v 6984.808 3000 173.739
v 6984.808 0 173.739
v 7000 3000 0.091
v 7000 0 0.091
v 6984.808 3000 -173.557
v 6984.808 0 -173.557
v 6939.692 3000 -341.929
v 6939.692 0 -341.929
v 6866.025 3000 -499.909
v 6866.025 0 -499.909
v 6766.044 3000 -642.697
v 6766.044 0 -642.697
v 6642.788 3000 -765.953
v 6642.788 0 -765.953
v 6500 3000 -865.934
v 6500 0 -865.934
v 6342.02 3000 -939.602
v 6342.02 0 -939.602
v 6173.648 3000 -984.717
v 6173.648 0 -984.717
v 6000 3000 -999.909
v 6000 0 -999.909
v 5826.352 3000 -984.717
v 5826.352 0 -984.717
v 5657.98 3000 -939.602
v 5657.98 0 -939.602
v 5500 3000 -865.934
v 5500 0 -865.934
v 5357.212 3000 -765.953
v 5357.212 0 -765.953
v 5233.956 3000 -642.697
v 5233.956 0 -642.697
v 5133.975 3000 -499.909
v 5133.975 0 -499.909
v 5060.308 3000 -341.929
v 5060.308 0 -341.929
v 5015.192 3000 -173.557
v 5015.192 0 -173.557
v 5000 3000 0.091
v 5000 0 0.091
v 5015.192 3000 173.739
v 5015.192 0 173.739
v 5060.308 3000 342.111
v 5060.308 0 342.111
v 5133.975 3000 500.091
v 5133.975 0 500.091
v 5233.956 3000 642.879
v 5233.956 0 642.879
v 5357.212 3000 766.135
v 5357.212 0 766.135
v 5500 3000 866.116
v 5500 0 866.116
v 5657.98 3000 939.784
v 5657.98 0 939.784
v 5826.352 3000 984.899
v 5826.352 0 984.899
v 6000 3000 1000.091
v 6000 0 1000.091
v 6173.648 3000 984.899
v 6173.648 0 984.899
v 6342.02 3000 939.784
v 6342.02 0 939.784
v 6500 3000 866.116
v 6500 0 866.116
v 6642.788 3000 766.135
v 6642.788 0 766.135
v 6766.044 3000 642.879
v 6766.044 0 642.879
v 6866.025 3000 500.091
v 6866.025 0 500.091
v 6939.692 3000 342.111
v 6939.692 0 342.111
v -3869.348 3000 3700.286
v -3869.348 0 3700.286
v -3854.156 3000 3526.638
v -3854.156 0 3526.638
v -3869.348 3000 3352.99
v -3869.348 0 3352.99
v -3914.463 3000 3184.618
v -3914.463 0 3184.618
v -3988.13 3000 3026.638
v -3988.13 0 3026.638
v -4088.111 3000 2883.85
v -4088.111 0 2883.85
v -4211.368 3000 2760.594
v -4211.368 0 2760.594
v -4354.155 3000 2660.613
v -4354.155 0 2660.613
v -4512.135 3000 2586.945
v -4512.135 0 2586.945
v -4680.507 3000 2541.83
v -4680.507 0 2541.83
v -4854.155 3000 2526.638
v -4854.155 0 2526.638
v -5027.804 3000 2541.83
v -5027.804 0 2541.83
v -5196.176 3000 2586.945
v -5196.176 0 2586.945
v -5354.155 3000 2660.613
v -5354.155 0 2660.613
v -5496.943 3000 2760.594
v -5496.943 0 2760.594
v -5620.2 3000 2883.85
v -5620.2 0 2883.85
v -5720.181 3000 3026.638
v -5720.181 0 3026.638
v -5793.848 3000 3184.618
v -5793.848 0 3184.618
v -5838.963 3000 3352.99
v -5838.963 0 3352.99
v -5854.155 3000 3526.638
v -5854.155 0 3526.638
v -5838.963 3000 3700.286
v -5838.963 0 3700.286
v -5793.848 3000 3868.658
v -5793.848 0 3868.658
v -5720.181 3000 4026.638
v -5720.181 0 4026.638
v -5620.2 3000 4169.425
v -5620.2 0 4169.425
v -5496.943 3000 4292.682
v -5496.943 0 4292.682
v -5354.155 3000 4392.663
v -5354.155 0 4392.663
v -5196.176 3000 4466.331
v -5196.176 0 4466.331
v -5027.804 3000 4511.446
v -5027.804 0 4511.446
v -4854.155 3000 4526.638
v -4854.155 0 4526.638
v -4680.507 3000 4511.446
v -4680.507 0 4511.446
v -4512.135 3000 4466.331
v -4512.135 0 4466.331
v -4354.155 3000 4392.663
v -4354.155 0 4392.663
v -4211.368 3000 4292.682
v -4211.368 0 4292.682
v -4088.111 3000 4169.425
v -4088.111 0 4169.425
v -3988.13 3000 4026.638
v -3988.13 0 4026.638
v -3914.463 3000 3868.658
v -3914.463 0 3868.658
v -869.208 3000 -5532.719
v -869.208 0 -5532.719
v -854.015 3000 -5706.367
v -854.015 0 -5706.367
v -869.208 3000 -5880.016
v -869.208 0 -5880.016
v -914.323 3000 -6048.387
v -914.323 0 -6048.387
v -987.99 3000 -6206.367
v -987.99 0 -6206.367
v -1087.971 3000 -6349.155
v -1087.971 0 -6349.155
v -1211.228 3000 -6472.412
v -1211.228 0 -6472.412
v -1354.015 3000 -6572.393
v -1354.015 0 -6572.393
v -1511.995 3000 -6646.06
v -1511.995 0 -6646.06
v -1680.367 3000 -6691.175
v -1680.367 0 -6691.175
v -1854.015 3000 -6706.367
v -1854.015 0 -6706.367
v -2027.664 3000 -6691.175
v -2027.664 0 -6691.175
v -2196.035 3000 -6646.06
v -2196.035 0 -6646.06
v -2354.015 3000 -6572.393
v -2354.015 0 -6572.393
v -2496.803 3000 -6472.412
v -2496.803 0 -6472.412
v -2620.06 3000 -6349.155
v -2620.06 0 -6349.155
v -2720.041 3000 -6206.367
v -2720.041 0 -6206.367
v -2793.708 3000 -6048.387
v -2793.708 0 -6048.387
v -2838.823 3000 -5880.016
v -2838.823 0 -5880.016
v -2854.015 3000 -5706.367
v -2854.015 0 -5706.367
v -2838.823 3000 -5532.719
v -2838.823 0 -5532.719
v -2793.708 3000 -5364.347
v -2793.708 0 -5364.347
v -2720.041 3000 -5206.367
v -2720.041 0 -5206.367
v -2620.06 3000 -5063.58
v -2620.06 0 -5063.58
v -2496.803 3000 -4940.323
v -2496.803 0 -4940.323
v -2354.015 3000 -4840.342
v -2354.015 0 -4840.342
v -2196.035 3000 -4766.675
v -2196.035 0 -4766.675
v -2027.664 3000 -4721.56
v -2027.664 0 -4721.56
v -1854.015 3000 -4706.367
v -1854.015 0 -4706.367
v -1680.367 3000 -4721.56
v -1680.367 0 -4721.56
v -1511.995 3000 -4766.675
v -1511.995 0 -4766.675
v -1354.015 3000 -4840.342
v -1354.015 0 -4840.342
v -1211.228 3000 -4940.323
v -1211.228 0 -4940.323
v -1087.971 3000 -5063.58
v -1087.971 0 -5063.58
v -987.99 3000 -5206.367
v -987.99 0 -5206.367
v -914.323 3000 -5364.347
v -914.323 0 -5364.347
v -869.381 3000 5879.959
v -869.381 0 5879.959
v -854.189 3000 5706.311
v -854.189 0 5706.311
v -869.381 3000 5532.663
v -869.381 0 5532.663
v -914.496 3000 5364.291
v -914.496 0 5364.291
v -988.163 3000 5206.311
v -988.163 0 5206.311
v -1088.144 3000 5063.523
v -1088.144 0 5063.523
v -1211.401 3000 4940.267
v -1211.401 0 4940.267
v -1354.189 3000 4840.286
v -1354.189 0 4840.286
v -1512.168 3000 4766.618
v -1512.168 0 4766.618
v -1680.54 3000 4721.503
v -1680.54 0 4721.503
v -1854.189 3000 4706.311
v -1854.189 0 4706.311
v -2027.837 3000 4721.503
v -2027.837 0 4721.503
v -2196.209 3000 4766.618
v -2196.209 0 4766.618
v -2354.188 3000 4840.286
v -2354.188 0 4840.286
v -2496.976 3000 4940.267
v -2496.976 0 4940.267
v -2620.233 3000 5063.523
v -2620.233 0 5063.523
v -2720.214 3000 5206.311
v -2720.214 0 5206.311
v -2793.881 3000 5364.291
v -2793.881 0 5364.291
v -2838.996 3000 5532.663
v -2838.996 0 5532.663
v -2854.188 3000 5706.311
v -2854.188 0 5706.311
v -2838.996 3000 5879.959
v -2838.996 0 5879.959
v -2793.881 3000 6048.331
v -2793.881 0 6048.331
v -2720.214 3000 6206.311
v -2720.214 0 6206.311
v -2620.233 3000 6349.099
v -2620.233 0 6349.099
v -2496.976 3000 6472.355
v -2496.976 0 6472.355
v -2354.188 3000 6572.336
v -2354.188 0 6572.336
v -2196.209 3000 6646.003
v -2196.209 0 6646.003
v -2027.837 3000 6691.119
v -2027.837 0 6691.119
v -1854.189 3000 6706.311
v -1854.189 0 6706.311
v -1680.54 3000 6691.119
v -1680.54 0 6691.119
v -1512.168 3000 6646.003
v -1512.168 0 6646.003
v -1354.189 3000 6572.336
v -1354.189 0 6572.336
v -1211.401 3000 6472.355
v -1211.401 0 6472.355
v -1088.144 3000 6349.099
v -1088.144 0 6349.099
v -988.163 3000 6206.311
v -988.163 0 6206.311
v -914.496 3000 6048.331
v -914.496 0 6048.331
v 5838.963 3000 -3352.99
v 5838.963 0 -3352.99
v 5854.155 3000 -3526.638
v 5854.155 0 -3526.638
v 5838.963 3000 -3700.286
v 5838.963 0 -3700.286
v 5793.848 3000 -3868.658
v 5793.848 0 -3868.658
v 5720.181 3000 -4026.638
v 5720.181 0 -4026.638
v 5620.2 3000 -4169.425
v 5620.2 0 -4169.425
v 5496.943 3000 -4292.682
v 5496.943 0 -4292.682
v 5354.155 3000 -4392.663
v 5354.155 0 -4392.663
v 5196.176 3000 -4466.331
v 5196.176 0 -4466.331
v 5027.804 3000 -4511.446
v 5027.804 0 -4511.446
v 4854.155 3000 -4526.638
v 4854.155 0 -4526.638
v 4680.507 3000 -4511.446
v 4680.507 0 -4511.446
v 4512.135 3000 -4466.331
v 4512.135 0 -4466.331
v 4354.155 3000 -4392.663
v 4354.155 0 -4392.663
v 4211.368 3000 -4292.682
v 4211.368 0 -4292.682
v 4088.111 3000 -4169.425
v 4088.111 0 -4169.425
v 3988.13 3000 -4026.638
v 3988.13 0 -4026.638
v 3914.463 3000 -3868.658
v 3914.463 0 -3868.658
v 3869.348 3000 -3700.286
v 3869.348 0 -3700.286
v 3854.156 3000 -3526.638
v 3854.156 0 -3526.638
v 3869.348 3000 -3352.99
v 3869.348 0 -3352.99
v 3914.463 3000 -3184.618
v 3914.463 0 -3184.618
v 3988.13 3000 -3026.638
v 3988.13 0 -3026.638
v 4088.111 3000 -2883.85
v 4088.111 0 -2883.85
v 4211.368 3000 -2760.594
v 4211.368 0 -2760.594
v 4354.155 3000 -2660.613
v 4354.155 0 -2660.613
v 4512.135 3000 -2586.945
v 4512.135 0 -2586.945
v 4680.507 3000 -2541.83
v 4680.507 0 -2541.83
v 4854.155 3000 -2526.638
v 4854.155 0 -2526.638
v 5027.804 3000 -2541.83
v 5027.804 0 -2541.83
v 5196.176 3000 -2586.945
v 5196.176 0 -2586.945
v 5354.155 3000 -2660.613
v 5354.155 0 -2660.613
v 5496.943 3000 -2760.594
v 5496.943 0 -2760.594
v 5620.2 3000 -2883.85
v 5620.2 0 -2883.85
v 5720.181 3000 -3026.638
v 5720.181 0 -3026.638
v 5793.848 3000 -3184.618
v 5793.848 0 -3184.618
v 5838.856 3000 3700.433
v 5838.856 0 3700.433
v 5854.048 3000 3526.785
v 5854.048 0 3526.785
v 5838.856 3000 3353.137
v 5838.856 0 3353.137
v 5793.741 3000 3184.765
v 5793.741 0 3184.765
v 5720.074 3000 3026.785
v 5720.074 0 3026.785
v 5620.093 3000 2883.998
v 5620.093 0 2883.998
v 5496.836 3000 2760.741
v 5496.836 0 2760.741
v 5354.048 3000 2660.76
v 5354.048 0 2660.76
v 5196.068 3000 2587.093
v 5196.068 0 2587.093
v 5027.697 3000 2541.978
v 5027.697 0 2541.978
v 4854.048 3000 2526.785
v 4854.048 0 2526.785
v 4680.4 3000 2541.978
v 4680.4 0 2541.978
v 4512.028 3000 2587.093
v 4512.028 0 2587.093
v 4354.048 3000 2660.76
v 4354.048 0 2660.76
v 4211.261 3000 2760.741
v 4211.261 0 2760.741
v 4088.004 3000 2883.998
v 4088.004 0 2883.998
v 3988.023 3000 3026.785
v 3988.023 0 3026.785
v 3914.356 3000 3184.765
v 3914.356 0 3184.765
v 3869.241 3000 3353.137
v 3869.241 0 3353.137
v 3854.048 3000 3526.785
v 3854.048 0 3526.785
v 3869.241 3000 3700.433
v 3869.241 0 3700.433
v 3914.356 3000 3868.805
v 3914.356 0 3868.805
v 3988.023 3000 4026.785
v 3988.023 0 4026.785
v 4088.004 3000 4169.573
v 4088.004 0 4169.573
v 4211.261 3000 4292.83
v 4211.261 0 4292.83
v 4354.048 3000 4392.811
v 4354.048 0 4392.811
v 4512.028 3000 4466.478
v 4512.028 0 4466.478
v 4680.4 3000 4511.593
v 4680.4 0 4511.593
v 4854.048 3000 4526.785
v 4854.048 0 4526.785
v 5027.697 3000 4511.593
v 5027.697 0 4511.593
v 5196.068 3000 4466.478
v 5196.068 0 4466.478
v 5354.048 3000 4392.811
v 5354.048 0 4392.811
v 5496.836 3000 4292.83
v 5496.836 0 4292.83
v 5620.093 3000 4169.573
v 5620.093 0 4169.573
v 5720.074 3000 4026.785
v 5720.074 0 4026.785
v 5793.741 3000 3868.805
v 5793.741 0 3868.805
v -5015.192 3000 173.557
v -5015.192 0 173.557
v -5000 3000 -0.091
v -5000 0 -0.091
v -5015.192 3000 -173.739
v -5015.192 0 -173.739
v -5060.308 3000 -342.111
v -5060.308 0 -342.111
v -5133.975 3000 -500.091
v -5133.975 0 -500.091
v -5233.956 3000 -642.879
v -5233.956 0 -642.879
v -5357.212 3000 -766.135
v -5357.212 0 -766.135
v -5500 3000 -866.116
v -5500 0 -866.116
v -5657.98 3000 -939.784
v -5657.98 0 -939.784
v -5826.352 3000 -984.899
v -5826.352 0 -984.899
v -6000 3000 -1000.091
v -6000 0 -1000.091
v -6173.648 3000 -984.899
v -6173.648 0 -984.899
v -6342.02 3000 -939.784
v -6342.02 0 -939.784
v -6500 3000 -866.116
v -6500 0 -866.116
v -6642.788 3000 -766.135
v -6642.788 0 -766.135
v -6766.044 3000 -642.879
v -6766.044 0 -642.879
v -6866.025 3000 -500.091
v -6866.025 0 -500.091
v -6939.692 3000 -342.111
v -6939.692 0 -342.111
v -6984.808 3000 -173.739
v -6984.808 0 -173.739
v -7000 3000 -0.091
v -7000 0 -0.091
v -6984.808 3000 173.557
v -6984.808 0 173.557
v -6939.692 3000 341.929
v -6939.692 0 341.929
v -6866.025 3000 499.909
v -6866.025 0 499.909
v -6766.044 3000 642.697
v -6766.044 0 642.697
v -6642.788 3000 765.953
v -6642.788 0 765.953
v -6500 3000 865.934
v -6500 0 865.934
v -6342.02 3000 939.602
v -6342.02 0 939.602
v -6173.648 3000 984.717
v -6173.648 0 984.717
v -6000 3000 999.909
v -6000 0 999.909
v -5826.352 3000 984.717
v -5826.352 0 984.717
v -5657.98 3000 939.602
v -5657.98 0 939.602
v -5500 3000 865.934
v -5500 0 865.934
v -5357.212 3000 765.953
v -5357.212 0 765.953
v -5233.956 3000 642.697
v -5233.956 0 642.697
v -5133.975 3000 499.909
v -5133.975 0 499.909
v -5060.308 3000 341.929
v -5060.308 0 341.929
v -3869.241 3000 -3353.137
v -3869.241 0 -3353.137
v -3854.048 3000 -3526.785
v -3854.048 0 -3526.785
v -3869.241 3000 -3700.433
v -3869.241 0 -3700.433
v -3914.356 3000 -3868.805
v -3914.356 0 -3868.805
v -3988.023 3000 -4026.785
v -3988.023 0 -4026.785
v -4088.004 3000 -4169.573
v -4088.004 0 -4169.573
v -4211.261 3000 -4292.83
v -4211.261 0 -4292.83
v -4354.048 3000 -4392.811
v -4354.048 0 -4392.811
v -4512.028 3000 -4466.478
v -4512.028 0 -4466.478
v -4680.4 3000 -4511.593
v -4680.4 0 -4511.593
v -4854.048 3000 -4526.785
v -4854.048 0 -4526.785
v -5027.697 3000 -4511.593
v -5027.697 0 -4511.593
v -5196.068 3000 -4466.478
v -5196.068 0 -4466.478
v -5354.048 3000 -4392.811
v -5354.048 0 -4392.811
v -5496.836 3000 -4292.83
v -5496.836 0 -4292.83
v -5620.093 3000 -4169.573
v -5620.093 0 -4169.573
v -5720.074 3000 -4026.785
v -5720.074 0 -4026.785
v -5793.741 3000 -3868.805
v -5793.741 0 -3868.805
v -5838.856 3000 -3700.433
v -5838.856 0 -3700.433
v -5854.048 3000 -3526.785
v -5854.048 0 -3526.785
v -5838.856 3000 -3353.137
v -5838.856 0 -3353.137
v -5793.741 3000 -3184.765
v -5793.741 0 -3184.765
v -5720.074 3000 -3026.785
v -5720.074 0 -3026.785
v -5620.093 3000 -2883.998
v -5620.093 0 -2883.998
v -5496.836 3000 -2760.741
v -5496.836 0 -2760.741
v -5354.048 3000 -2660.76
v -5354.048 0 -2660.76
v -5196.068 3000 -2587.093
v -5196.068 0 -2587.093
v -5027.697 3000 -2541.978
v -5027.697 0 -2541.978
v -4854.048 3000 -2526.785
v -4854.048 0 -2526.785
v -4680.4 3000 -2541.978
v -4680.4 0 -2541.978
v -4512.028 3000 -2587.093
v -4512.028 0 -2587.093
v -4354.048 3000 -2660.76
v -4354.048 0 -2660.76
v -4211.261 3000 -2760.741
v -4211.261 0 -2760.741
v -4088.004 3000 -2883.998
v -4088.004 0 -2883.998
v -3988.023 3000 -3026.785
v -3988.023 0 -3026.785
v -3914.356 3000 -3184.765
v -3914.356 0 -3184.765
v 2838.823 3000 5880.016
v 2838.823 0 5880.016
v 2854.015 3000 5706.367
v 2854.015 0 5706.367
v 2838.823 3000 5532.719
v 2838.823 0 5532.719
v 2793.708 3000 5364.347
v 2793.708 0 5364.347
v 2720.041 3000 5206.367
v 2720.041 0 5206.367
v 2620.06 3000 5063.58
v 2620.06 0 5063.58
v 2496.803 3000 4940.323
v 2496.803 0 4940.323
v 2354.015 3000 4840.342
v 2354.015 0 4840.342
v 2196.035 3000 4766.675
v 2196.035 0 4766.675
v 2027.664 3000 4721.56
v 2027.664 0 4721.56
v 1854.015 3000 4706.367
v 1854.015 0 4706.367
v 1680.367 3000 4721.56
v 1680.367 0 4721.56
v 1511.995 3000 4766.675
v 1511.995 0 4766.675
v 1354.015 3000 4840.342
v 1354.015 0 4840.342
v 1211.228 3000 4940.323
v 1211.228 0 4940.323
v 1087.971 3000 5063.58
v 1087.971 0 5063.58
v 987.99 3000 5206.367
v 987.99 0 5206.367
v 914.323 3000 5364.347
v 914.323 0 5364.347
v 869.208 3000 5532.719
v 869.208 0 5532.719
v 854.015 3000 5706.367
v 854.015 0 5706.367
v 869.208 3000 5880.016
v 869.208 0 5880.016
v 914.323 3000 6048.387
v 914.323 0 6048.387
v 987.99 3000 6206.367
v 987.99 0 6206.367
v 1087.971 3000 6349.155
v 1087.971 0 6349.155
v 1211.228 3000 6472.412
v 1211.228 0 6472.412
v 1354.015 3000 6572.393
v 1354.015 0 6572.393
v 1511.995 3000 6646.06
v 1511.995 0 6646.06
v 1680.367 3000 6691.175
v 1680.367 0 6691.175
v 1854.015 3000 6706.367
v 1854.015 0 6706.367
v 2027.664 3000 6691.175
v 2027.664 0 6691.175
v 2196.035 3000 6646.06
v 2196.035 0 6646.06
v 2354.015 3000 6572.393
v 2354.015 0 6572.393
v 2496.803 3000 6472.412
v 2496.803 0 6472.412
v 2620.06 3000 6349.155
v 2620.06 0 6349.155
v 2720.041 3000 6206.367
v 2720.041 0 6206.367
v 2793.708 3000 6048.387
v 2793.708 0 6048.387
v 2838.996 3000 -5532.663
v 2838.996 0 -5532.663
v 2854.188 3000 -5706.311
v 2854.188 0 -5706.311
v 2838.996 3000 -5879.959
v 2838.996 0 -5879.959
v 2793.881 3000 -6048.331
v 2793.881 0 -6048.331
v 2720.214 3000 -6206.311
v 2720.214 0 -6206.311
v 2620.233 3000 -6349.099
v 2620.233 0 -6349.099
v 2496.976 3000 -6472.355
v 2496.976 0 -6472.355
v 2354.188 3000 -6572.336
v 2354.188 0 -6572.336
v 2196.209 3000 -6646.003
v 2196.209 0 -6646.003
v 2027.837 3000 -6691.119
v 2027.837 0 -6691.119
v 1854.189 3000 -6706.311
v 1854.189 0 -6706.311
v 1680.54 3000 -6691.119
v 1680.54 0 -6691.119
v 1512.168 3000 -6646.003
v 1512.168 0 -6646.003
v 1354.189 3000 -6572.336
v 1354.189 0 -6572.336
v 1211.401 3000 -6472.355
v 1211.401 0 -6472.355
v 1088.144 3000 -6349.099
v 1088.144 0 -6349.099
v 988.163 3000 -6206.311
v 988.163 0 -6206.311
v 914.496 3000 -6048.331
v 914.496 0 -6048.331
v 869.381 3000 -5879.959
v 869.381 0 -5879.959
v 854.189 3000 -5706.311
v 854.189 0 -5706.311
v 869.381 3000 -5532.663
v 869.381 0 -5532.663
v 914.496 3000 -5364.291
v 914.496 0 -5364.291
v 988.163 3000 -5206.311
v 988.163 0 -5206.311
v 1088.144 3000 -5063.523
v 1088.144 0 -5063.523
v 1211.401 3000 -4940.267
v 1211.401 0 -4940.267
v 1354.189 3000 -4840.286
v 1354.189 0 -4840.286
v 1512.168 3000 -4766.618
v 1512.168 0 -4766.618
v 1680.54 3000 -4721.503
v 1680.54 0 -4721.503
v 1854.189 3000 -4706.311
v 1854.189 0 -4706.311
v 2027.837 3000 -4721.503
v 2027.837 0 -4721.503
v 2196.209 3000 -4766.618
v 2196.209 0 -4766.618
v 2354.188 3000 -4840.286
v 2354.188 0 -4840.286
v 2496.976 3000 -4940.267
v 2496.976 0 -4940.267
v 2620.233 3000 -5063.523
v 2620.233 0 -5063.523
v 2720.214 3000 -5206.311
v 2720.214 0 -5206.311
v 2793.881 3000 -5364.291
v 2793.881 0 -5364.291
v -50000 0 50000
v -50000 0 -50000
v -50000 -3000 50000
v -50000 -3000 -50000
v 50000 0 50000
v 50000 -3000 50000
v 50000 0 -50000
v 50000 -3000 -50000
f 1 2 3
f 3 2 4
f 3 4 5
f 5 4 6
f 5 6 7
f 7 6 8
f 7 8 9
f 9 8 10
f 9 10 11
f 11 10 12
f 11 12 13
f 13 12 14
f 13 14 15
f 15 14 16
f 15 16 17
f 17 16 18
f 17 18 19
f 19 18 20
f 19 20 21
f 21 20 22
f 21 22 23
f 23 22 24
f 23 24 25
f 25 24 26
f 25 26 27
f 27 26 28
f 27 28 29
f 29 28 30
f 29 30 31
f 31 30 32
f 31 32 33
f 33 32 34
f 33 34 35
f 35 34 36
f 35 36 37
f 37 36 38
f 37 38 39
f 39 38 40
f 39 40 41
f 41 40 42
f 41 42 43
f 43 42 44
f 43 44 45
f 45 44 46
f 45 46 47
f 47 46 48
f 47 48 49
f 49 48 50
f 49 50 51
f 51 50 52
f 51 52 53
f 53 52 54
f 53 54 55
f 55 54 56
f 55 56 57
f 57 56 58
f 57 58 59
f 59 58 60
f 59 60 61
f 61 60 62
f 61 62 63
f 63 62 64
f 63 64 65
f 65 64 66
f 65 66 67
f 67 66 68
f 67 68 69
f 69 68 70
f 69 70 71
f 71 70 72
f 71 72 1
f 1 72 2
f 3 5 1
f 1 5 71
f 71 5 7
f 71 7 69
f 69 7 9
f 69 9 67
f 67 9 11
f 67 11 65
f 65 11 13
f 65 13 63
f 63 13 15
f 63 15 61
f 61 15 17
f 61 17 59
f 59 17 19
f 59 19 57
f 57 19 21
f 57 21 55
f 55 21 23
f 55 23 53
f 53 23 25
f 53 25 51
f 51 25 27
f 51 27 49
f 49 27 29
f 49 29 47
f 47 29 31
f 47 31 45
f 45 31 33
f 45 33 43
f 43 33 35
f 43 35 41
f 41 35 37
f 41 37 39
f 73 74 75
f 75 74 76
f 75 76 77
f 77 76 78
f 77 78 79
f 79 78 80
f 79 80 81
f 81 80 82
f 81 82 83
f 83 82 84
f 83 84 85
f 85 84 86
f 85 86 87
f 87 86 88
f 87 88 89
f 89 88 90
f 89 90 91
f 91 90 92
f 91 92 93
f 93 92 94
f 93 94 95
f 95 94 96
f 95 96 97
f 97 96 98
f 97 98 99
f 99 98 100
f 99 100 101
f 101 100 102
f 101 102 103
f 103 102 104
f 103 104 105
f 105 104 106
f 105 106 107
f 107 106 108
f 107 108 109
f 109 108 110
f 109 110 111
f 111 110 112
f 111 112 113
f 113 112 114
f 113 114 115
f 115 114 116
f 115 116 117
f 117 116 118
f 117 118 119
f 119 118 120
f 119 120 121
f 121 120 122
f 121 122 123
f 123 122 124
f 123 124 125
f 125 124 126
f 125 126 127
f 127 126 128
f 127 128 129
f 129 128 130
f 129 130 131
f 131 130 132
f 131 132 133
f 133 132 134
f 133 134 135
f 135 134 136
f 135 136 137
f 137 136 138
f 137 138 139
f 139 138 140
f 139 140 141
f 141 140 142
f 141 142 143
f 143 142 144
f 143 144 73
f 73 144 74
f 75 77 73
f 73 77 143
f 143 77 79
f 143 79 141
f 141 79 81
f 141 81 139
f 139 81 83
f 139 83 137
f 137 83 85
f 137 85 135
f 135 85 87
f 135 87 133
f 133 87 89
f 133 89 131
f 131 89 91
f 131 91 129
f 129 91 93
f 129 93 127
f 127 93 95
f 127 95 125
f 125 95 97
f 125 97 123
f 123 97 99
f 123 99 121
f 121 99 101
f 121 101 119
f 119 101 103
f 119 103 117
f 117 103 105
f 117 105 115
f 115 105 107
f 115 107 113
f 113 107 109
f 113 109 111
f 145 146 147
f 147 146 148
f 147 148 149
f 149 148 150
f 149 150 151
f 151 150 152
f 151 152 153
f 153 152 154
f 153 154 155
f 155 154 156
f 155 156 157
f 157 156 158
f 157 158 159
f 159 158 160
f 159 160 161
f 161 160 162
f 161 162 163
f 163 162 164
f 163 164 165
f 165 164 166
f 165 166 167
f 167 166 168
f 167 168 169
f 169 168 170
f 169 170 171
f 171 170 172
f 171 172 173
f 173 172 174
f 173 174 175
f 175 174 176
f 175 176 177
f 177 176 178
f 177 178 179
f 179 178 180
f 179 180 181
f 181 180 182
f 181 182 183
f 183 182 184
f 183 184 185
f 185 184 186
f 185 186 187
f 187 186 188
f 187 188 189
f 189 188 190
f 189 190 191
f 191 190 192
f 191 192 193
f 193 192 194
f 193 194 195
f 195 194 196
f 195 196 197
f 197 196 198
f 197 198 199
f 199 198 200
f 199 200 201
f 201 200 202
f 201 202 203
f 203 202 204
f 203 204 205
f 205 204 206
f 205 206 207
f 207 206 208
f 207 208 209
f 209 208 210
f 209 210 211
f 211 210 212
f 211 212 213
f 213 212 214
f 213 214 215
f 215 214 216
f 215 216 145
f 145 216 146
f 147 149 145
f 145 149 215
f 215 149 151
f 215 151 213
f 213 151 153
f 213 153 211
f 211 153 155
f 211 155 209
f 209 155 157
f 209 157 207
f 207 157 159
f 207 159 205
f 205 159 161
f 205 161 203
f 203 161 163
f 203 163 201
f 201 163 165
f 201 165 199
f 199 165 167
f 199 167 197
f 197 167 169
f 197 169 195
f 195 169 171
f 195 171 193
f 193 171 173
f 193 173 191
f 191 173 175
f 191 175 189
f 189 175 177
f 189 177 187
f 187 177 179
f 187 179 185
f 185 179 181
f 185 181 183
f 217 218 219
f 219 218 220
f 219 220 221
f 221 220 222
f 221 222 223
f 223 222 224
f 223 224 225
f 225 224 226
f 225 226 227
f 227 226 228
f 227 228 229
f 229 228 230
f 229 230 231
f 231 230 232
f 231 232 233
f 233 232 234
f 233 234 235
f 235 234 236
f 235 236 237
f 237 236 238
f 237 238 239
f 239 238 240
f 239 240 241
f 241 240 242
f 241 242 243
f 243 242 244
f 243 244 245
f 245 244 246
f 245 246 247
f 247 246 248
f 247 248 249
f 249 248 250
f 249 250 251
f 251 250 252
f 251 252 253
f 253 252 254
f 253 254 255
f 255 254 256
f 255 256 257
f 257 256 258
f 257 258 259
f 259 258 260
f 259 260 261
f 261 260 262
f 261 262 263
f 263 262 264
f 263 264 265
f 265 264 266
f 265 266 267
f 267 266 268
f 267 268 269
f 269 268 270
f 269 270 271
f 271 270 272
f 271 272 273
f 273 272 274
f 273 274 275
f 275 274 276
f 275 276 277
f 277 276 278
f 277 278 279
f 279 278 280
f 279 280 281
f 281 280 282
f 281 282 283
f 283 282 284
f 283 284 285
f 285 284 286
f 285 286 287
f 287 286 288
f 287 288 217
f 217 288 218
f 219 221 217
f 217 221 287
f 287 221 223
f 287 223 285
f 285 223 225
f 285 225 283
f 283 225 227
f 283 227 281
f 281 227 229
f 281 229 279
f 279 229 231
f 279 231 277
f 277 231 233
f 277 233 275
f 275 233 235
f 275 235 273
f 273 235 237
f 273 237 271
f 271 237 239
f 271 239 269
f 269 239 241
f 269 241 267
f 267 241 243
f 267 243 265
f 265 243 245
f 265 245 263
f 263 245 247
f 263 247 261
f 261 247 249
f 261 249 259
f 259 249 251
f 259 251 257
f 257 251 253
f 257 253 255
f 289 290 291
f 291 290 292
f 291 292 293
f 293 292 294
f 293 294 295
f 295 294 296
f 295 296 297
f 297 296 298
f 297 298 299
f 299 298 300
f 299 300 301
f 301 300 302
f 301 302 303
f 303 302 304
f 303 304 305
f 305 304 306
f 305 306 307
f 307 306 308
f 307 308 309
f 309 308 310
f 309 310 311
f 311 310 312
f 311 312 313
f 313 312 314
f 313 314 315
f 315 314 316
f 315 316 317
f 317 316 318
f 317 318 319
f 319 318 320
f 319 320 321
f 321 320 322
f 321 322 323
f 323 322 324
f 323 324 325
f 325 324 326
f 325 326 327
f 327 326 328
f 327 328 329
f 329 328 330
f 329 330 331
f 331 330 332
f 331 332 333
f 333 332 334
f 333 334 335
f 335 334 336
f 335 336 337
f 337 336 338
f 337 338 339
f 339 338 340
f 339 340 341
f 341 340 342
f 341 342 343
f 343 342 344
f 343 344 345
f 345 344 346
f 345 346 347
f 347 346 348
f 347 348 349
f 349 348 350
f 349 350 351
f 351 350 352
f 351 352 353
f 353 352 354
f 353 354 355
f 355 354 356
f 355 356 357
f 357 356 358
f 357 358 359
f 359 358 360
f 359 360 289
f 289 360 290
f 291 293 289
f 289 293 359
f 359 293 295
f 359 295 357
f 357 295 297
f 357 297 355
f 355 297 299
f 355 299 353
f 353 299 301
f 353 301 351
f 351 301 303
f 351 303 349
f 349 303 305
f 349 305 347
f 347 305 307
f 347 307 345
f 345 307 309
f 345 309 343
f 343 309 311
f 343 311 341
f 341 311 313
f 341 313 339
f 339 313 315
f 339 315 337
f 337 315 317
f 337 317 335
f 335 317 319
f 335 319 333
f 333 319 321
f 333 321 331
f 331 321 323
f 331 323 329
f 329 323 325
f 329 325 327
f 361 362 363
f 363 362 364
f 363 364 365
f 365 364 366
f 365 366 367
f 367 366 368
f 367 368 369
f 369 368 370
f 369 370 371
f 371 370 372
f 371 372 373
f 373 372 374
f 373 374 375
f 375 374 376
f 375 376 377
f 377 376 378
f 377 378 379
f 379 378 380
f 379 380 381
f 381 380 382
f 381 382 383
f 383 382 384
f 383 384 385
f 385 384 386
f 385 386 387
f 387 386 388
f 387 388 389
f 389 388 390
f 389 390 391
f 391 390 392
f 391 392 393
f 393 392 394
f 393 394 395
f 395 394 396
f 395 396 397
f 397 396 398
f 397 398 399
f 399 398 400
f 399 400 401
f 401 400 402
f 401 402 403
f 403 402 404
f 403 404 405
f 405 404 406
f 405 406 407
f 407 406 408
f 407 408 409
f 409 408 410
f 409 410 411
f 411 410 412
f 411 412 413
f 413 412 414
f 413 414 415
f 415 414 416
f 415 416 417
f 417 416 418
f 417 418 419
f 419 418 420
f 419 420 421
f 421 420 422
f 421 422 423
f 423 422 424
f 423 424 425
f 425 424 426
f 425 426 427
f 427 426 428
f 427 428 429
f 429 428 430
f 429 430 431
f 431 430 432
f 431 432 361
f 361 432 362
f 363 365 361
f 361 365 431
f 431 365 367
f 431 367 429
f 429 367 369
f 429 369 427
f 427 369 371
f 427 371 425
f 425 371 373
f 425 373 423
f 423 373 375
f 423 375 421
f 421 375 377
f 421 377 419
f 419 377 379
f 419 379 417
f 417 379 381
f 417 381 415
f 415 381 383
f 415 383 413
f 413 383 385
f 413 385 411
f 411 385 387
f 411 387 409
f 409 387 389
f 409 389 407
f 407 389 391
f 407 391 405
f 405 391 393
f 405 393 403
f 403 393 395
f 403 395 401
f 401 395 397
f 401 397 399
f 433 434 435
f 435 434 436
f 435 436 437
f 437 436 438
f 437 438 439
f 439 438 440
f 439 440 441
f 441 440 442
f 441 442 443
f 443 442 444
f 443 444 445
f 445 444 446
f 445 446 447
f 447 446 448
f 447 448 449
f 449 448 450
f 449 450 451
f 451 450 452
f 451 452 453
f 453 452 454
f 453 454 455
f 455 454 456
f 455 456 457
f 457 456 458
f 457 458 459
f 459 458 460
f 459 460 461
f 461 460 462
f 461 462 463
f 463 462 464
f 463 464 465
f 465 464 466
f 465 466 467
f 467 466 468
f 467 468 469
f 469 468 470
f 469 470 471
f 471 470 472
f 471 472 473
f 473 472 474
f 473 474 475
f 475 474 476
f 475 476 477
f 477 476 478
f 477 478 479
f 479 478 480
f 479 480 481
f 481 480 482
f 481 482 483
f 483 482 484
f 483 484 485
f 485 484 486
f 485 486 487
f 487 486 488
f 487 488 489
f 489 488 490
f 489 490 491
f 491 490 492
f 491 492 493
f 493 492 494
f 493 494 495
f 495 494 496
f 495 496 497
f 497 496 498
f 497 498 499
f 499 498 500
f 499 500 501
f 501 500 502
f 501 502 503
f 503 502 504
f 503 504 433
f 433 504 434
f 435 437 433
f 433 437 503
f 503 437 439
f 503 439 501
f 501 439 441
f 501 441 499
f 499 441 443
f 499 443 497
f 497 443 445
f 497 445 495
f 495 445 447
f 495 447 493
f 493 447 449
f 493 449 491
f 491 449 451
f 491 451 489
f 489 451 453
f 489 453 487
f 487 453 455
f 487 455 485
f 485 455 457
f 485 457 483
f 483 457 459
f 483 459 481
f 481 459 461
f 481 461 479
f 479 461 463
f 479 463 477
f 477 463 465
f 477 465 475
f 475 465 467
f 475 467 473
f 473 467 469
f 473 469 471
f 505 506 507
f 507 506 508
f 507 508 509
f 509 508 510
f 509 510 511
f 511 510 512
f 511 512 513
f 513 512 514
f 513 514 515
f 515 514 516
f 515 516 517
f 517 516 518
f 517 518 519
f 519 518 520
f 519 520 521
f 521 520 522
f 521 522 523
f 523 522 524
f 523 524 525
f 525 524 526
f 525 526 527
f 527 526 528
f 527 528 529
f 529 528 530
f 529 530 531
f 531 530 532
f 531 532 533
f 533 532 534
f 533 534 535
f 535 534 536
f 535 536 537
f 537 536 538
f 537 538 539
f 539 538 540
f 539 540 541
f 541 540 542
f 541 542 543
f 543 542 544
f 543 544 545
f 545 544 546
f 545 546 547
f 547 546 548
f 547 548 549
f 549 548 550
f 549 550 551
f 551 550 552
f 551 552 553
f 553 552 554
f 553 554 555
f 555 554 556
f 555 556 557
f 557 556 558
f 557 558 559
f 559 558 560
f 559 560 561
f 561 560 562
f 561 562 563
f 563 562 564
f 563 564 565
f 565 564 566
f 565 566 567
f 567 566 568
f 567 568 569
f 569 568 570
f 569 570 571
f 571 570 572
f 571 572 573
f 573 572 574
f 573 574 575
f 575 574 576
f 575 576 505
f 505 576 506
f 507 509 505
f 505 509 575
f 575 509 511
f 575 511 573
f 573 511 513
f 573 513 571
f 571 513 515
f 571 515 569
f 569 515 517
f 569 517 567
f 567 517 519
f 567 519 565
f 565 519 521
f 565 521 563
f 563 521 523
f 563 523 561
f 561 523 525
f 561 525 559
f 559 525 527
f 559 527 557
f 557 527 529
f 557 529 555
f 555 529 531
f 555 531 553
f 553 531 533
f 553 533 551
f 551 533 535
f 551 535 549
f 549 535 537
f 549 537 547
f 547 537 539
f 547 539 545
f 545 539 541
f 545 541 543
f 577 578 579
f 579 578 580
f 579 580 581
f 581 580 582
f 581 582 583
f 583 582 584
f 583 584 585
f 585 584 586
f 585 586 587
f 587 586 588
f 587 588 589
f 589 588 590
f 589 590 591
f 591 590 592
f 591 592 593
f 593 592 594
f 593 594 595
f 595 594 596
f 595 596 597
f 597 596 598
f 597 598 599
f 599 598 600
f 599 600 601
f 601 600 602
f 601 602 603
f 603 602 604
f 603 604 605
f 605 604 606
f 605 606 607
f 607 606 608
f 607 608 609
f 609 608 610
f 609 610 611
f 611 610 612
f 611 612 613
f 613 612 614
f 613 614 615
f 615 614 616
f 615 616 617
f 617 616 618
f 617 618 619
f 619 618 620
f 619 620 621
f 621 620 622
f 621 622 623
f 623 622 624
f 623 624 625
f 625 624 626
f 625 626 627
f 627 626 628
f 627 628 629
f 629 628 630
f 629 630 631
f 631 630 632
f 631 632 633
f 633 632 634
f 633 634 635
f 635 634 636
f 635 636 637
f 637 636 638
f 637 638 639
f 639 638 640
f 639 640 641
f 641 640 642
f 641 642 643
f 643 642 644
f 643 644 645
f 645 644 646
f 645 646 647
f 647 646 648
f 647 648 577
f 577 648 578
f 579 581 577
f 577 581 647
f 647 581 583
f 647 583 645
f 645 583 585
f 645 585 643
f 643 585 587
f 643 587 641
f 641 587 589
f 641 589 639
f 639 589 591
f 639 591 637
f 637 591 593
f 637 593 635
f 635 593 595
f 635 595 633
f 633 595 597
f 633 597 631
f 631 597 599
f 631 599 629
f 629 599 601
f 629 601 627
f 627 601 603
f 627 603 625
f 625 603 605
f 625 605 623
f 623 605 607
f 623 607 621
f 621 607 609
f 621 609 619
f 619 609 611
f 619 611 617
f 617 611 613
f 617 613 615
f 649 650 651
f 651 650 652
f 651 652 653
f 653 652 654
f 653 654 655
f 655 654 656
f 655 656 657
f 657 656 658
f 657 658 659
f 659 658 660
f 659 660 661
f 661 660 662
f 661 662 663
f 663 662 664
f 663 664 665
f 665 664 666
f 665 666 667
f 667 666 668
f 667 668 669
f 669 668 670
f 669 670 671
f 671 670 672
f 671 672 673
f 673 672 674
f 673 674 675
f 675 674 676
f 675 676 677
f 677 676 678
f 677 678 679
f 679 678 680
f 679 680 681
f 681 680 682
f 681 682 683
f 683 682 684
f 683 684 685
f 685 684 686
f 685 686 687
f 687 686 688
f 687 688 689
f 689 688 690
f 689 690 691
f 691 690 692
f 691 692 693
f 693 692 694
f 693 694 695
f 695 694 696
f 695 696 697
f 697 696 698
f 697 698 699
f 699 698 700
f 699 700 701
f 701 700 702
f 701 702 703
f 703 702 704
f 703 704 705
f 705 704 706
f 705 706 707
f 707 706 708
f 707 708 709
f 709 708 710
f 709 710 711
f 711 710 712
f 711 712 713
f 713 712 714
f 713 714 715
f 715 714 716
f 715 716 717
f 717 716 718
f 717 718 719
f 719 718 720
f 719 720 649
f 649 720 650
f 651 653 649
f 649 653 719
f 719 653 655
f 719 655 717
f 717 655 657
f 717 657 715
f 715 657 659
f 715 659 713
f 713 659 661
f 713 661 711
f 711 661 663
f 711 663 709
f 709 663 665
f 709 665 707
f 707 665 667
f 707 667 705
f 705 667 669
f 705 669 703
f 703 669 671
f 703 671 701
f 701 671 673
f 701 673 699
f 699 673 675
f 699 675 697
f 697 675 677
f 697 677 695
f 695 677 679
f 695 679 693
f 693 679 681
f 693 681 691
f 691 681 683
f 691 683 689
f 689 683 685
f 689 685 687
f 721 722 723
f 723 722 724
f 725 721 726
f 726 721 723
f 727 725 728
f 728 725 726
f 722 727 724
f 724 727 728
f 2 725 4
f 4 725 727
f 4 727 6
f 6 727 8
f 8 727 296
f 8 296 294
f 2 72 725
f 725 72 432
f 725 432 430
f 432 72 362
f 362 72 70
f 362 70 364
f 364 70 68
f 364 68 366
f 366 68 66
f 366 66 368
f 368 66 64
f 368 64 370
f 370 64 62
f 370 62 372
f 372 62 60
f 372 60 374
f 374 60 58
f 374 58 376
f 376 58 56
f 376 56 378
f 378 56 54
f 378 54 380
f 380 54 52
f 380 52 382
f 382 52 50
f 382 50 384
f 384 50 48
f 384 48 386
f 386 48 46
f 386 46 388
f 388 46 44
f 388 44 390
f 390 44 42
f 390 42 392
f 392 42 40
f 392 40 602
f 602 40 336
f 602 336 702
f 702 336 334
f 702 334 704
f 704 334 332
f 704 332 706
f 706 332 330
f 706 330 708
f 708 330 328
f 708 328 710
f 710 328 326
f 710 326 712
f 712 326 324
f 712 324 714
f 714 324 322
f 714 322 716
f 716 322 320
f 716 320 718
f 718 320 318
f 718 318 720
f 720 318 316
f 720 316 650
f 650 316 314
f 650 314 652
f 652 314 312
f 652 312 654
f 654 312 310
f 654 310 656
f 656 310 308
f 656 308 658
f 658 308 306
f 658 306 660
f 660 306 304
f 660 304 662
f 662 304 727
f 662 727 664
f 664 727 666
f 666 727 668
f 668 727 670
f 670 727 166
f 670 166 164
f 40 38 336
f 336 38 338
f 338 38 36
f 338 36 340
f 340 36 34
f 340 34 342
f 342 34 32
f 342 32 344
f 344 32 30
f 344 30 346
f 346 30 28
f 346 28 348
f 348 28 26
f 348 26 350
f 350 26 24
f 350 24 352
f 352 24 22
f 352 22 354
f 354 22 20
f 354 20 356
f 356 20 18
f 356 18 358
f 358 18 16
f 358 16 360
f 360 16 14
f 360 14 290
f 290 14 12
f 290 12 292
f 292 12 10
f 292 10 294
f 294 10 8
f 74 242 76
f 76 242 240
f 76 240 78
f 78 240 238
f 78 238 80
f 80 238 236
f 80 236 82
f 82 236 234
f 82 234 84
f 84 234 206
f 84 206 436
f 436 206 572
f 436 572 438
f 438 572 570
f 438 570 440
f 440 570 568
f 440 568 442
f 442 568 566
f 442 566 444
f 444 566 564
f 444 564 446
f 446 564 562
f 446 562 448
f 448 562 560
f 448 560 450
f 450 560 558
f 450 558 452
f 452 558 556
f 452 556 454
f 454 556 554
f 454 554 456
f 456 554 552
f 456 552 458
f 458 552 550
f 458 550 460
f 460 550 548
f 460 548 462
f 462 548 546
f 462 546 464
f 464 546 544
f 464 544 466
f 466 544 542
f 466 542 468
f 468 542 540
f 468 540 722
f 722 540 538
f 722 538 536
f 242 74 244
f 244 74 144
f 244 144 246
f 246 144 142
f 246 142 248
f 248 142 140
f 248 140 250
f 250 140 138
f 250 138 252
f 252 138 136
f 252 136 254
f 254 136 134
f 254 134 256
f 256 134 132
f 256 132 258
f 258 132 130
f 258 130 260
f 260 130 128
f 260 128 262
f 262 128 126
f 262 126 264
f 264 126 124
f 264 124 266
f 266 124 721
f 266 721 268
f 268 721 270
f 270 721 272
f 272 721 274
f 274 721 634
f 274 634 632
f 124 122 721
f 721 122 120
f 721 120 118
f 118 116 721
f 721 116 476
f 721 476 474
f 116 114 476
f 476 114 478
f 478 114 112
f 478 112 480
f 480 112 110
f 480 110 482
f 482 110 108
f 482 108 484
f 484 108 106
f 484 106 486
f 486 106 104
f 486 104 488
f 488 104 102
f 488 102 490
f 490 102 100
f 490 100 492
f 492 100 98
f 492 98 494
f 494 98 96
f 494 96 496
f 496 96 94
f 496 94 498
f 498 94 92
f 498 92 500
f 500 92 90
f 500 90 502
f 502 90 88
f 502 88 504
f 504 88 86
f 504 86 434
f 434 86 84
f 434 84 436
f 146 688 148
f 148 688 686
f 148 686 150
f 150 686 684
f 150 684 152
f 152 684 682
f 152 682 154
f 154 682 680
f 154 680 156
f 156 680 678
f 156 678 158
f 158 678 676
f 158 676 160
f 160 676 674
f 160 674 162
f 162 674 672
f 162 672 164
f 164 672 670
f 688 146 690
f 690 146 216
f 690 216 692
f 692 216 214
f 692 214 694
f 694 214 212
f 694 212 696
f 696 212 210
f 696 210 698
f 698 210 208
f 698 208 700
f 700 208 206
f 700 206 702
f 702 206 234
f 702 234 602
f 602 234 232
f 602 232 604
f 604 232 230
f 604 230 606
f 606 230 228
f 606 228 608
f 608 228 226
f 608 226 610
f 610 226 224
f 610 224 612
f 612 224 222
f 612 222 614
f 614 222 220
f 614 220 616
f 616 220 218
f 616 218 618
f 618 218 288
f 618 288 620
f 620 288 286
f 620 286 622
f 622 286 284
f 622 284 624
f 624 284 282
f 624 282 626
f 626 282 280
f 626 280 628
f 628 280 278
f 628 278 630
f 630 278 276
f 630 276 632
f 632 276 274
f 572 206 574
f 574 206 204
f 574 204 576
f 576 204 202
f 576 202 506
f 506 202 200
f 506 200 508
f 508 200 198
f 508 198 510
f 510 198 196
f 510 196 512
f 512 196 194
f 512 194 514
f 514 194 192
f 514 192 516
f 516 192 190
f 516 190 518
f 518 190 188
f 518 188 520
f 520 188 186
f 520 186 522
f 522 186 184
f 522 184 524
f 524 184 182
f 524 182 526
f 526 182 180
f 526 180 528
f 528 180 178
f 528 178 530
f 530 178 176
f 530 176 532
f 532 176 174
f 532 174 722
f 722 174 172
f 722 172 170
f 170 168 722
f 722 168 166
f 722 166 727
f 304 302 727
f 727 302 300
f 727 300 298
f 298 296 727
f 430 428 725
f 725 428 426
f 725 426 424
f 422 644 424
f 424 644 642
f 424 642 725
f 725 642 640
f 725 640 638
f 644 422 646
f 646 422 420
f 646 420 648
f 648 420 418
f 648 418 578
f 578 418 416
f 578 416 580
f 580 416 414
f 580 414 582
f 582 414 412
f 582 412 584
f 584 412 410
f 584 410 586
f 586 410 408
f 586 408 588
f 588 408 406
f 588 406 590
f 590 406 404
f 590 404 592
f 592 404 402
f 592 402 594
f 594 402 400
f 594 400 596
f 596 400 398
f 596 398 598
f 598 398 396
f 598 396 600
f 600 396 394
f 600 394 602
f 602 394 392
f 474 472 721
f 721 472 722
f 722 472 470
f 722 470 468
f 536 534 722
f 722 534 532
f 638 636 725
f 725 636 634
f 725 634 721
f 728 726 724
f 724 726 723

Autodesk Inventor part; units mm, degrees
ref_plane "YZ Plane" through (0, 0, 0) normal (1, 0, 0) x (0, 1, 0)
ref_plane "XZ Plane" through (0, 0, 0) normal (0, 1, 0) x (-1, 0, 0)
ref_plane "XY Plane" through (0, 0, 0) normal (0, 0, 1) x (1, 0, 0)
sketch "Sketch1" plane through (0, 0, 0) normal (0, 1, 0) x (-1, 0, 0)
  line L0 (-50000, 50000) -> (50000, 50000)
  line L1 (50000, 50000) -> (50000, -50000)
  line L2 (50000, -50000) -> (-50000, -50000)
  line L3 (-50000, -50000) -> (-50000, 50000)
  line L4 (-50000, 50000) -> (50000, -50000) construction
  line L5 (50000, 50000) -> (-50000, -50000) construction
  point P0 (0, 0)
  dimension "d0" = 100000
  dimension "d1" = 100000
extrude "Extrusion1" add sketch "Sketch1" against normal blind 3000
sketch "Sketch2" plane through (0, 0, 0) normal (0, 1, 0) x (1, 0, 0)
  circle A0 centre (0, 0) radius 6000 construction
  circle A1 centre (6000, -0.0911) radius 1000
  circle A2 centre (4854.1555, 3526.6379) radius 1000
  circle A3 centre (1854.1886, 5706.311) radius 1000
  circle A4 centre (-1854.0154, 5706.3672) radius 1000
  circle A5 centre (-4854.0484, 3526.7852) radius 1000
  circle A6 centre (-6000, 0.0911) radius 1000
  circle A7 centre (-4854.1555, -3526.6379) radius 1000
  circle A8 centre (-1854.1886, -5706.311) radius 1000
  circle A9 centre (1854.0154, -5706.3672) radius 1000
  circle A10 centre (4854.0484, -3526.7852) radius 1000
  dimension "d4" = 12000
  dimension "d5" = 2000
  dimension "d8" = 360
extrude "Extrusion2" add sketch "Sketch2" along normal blind 3000
properties part number "verify_geometry2"
